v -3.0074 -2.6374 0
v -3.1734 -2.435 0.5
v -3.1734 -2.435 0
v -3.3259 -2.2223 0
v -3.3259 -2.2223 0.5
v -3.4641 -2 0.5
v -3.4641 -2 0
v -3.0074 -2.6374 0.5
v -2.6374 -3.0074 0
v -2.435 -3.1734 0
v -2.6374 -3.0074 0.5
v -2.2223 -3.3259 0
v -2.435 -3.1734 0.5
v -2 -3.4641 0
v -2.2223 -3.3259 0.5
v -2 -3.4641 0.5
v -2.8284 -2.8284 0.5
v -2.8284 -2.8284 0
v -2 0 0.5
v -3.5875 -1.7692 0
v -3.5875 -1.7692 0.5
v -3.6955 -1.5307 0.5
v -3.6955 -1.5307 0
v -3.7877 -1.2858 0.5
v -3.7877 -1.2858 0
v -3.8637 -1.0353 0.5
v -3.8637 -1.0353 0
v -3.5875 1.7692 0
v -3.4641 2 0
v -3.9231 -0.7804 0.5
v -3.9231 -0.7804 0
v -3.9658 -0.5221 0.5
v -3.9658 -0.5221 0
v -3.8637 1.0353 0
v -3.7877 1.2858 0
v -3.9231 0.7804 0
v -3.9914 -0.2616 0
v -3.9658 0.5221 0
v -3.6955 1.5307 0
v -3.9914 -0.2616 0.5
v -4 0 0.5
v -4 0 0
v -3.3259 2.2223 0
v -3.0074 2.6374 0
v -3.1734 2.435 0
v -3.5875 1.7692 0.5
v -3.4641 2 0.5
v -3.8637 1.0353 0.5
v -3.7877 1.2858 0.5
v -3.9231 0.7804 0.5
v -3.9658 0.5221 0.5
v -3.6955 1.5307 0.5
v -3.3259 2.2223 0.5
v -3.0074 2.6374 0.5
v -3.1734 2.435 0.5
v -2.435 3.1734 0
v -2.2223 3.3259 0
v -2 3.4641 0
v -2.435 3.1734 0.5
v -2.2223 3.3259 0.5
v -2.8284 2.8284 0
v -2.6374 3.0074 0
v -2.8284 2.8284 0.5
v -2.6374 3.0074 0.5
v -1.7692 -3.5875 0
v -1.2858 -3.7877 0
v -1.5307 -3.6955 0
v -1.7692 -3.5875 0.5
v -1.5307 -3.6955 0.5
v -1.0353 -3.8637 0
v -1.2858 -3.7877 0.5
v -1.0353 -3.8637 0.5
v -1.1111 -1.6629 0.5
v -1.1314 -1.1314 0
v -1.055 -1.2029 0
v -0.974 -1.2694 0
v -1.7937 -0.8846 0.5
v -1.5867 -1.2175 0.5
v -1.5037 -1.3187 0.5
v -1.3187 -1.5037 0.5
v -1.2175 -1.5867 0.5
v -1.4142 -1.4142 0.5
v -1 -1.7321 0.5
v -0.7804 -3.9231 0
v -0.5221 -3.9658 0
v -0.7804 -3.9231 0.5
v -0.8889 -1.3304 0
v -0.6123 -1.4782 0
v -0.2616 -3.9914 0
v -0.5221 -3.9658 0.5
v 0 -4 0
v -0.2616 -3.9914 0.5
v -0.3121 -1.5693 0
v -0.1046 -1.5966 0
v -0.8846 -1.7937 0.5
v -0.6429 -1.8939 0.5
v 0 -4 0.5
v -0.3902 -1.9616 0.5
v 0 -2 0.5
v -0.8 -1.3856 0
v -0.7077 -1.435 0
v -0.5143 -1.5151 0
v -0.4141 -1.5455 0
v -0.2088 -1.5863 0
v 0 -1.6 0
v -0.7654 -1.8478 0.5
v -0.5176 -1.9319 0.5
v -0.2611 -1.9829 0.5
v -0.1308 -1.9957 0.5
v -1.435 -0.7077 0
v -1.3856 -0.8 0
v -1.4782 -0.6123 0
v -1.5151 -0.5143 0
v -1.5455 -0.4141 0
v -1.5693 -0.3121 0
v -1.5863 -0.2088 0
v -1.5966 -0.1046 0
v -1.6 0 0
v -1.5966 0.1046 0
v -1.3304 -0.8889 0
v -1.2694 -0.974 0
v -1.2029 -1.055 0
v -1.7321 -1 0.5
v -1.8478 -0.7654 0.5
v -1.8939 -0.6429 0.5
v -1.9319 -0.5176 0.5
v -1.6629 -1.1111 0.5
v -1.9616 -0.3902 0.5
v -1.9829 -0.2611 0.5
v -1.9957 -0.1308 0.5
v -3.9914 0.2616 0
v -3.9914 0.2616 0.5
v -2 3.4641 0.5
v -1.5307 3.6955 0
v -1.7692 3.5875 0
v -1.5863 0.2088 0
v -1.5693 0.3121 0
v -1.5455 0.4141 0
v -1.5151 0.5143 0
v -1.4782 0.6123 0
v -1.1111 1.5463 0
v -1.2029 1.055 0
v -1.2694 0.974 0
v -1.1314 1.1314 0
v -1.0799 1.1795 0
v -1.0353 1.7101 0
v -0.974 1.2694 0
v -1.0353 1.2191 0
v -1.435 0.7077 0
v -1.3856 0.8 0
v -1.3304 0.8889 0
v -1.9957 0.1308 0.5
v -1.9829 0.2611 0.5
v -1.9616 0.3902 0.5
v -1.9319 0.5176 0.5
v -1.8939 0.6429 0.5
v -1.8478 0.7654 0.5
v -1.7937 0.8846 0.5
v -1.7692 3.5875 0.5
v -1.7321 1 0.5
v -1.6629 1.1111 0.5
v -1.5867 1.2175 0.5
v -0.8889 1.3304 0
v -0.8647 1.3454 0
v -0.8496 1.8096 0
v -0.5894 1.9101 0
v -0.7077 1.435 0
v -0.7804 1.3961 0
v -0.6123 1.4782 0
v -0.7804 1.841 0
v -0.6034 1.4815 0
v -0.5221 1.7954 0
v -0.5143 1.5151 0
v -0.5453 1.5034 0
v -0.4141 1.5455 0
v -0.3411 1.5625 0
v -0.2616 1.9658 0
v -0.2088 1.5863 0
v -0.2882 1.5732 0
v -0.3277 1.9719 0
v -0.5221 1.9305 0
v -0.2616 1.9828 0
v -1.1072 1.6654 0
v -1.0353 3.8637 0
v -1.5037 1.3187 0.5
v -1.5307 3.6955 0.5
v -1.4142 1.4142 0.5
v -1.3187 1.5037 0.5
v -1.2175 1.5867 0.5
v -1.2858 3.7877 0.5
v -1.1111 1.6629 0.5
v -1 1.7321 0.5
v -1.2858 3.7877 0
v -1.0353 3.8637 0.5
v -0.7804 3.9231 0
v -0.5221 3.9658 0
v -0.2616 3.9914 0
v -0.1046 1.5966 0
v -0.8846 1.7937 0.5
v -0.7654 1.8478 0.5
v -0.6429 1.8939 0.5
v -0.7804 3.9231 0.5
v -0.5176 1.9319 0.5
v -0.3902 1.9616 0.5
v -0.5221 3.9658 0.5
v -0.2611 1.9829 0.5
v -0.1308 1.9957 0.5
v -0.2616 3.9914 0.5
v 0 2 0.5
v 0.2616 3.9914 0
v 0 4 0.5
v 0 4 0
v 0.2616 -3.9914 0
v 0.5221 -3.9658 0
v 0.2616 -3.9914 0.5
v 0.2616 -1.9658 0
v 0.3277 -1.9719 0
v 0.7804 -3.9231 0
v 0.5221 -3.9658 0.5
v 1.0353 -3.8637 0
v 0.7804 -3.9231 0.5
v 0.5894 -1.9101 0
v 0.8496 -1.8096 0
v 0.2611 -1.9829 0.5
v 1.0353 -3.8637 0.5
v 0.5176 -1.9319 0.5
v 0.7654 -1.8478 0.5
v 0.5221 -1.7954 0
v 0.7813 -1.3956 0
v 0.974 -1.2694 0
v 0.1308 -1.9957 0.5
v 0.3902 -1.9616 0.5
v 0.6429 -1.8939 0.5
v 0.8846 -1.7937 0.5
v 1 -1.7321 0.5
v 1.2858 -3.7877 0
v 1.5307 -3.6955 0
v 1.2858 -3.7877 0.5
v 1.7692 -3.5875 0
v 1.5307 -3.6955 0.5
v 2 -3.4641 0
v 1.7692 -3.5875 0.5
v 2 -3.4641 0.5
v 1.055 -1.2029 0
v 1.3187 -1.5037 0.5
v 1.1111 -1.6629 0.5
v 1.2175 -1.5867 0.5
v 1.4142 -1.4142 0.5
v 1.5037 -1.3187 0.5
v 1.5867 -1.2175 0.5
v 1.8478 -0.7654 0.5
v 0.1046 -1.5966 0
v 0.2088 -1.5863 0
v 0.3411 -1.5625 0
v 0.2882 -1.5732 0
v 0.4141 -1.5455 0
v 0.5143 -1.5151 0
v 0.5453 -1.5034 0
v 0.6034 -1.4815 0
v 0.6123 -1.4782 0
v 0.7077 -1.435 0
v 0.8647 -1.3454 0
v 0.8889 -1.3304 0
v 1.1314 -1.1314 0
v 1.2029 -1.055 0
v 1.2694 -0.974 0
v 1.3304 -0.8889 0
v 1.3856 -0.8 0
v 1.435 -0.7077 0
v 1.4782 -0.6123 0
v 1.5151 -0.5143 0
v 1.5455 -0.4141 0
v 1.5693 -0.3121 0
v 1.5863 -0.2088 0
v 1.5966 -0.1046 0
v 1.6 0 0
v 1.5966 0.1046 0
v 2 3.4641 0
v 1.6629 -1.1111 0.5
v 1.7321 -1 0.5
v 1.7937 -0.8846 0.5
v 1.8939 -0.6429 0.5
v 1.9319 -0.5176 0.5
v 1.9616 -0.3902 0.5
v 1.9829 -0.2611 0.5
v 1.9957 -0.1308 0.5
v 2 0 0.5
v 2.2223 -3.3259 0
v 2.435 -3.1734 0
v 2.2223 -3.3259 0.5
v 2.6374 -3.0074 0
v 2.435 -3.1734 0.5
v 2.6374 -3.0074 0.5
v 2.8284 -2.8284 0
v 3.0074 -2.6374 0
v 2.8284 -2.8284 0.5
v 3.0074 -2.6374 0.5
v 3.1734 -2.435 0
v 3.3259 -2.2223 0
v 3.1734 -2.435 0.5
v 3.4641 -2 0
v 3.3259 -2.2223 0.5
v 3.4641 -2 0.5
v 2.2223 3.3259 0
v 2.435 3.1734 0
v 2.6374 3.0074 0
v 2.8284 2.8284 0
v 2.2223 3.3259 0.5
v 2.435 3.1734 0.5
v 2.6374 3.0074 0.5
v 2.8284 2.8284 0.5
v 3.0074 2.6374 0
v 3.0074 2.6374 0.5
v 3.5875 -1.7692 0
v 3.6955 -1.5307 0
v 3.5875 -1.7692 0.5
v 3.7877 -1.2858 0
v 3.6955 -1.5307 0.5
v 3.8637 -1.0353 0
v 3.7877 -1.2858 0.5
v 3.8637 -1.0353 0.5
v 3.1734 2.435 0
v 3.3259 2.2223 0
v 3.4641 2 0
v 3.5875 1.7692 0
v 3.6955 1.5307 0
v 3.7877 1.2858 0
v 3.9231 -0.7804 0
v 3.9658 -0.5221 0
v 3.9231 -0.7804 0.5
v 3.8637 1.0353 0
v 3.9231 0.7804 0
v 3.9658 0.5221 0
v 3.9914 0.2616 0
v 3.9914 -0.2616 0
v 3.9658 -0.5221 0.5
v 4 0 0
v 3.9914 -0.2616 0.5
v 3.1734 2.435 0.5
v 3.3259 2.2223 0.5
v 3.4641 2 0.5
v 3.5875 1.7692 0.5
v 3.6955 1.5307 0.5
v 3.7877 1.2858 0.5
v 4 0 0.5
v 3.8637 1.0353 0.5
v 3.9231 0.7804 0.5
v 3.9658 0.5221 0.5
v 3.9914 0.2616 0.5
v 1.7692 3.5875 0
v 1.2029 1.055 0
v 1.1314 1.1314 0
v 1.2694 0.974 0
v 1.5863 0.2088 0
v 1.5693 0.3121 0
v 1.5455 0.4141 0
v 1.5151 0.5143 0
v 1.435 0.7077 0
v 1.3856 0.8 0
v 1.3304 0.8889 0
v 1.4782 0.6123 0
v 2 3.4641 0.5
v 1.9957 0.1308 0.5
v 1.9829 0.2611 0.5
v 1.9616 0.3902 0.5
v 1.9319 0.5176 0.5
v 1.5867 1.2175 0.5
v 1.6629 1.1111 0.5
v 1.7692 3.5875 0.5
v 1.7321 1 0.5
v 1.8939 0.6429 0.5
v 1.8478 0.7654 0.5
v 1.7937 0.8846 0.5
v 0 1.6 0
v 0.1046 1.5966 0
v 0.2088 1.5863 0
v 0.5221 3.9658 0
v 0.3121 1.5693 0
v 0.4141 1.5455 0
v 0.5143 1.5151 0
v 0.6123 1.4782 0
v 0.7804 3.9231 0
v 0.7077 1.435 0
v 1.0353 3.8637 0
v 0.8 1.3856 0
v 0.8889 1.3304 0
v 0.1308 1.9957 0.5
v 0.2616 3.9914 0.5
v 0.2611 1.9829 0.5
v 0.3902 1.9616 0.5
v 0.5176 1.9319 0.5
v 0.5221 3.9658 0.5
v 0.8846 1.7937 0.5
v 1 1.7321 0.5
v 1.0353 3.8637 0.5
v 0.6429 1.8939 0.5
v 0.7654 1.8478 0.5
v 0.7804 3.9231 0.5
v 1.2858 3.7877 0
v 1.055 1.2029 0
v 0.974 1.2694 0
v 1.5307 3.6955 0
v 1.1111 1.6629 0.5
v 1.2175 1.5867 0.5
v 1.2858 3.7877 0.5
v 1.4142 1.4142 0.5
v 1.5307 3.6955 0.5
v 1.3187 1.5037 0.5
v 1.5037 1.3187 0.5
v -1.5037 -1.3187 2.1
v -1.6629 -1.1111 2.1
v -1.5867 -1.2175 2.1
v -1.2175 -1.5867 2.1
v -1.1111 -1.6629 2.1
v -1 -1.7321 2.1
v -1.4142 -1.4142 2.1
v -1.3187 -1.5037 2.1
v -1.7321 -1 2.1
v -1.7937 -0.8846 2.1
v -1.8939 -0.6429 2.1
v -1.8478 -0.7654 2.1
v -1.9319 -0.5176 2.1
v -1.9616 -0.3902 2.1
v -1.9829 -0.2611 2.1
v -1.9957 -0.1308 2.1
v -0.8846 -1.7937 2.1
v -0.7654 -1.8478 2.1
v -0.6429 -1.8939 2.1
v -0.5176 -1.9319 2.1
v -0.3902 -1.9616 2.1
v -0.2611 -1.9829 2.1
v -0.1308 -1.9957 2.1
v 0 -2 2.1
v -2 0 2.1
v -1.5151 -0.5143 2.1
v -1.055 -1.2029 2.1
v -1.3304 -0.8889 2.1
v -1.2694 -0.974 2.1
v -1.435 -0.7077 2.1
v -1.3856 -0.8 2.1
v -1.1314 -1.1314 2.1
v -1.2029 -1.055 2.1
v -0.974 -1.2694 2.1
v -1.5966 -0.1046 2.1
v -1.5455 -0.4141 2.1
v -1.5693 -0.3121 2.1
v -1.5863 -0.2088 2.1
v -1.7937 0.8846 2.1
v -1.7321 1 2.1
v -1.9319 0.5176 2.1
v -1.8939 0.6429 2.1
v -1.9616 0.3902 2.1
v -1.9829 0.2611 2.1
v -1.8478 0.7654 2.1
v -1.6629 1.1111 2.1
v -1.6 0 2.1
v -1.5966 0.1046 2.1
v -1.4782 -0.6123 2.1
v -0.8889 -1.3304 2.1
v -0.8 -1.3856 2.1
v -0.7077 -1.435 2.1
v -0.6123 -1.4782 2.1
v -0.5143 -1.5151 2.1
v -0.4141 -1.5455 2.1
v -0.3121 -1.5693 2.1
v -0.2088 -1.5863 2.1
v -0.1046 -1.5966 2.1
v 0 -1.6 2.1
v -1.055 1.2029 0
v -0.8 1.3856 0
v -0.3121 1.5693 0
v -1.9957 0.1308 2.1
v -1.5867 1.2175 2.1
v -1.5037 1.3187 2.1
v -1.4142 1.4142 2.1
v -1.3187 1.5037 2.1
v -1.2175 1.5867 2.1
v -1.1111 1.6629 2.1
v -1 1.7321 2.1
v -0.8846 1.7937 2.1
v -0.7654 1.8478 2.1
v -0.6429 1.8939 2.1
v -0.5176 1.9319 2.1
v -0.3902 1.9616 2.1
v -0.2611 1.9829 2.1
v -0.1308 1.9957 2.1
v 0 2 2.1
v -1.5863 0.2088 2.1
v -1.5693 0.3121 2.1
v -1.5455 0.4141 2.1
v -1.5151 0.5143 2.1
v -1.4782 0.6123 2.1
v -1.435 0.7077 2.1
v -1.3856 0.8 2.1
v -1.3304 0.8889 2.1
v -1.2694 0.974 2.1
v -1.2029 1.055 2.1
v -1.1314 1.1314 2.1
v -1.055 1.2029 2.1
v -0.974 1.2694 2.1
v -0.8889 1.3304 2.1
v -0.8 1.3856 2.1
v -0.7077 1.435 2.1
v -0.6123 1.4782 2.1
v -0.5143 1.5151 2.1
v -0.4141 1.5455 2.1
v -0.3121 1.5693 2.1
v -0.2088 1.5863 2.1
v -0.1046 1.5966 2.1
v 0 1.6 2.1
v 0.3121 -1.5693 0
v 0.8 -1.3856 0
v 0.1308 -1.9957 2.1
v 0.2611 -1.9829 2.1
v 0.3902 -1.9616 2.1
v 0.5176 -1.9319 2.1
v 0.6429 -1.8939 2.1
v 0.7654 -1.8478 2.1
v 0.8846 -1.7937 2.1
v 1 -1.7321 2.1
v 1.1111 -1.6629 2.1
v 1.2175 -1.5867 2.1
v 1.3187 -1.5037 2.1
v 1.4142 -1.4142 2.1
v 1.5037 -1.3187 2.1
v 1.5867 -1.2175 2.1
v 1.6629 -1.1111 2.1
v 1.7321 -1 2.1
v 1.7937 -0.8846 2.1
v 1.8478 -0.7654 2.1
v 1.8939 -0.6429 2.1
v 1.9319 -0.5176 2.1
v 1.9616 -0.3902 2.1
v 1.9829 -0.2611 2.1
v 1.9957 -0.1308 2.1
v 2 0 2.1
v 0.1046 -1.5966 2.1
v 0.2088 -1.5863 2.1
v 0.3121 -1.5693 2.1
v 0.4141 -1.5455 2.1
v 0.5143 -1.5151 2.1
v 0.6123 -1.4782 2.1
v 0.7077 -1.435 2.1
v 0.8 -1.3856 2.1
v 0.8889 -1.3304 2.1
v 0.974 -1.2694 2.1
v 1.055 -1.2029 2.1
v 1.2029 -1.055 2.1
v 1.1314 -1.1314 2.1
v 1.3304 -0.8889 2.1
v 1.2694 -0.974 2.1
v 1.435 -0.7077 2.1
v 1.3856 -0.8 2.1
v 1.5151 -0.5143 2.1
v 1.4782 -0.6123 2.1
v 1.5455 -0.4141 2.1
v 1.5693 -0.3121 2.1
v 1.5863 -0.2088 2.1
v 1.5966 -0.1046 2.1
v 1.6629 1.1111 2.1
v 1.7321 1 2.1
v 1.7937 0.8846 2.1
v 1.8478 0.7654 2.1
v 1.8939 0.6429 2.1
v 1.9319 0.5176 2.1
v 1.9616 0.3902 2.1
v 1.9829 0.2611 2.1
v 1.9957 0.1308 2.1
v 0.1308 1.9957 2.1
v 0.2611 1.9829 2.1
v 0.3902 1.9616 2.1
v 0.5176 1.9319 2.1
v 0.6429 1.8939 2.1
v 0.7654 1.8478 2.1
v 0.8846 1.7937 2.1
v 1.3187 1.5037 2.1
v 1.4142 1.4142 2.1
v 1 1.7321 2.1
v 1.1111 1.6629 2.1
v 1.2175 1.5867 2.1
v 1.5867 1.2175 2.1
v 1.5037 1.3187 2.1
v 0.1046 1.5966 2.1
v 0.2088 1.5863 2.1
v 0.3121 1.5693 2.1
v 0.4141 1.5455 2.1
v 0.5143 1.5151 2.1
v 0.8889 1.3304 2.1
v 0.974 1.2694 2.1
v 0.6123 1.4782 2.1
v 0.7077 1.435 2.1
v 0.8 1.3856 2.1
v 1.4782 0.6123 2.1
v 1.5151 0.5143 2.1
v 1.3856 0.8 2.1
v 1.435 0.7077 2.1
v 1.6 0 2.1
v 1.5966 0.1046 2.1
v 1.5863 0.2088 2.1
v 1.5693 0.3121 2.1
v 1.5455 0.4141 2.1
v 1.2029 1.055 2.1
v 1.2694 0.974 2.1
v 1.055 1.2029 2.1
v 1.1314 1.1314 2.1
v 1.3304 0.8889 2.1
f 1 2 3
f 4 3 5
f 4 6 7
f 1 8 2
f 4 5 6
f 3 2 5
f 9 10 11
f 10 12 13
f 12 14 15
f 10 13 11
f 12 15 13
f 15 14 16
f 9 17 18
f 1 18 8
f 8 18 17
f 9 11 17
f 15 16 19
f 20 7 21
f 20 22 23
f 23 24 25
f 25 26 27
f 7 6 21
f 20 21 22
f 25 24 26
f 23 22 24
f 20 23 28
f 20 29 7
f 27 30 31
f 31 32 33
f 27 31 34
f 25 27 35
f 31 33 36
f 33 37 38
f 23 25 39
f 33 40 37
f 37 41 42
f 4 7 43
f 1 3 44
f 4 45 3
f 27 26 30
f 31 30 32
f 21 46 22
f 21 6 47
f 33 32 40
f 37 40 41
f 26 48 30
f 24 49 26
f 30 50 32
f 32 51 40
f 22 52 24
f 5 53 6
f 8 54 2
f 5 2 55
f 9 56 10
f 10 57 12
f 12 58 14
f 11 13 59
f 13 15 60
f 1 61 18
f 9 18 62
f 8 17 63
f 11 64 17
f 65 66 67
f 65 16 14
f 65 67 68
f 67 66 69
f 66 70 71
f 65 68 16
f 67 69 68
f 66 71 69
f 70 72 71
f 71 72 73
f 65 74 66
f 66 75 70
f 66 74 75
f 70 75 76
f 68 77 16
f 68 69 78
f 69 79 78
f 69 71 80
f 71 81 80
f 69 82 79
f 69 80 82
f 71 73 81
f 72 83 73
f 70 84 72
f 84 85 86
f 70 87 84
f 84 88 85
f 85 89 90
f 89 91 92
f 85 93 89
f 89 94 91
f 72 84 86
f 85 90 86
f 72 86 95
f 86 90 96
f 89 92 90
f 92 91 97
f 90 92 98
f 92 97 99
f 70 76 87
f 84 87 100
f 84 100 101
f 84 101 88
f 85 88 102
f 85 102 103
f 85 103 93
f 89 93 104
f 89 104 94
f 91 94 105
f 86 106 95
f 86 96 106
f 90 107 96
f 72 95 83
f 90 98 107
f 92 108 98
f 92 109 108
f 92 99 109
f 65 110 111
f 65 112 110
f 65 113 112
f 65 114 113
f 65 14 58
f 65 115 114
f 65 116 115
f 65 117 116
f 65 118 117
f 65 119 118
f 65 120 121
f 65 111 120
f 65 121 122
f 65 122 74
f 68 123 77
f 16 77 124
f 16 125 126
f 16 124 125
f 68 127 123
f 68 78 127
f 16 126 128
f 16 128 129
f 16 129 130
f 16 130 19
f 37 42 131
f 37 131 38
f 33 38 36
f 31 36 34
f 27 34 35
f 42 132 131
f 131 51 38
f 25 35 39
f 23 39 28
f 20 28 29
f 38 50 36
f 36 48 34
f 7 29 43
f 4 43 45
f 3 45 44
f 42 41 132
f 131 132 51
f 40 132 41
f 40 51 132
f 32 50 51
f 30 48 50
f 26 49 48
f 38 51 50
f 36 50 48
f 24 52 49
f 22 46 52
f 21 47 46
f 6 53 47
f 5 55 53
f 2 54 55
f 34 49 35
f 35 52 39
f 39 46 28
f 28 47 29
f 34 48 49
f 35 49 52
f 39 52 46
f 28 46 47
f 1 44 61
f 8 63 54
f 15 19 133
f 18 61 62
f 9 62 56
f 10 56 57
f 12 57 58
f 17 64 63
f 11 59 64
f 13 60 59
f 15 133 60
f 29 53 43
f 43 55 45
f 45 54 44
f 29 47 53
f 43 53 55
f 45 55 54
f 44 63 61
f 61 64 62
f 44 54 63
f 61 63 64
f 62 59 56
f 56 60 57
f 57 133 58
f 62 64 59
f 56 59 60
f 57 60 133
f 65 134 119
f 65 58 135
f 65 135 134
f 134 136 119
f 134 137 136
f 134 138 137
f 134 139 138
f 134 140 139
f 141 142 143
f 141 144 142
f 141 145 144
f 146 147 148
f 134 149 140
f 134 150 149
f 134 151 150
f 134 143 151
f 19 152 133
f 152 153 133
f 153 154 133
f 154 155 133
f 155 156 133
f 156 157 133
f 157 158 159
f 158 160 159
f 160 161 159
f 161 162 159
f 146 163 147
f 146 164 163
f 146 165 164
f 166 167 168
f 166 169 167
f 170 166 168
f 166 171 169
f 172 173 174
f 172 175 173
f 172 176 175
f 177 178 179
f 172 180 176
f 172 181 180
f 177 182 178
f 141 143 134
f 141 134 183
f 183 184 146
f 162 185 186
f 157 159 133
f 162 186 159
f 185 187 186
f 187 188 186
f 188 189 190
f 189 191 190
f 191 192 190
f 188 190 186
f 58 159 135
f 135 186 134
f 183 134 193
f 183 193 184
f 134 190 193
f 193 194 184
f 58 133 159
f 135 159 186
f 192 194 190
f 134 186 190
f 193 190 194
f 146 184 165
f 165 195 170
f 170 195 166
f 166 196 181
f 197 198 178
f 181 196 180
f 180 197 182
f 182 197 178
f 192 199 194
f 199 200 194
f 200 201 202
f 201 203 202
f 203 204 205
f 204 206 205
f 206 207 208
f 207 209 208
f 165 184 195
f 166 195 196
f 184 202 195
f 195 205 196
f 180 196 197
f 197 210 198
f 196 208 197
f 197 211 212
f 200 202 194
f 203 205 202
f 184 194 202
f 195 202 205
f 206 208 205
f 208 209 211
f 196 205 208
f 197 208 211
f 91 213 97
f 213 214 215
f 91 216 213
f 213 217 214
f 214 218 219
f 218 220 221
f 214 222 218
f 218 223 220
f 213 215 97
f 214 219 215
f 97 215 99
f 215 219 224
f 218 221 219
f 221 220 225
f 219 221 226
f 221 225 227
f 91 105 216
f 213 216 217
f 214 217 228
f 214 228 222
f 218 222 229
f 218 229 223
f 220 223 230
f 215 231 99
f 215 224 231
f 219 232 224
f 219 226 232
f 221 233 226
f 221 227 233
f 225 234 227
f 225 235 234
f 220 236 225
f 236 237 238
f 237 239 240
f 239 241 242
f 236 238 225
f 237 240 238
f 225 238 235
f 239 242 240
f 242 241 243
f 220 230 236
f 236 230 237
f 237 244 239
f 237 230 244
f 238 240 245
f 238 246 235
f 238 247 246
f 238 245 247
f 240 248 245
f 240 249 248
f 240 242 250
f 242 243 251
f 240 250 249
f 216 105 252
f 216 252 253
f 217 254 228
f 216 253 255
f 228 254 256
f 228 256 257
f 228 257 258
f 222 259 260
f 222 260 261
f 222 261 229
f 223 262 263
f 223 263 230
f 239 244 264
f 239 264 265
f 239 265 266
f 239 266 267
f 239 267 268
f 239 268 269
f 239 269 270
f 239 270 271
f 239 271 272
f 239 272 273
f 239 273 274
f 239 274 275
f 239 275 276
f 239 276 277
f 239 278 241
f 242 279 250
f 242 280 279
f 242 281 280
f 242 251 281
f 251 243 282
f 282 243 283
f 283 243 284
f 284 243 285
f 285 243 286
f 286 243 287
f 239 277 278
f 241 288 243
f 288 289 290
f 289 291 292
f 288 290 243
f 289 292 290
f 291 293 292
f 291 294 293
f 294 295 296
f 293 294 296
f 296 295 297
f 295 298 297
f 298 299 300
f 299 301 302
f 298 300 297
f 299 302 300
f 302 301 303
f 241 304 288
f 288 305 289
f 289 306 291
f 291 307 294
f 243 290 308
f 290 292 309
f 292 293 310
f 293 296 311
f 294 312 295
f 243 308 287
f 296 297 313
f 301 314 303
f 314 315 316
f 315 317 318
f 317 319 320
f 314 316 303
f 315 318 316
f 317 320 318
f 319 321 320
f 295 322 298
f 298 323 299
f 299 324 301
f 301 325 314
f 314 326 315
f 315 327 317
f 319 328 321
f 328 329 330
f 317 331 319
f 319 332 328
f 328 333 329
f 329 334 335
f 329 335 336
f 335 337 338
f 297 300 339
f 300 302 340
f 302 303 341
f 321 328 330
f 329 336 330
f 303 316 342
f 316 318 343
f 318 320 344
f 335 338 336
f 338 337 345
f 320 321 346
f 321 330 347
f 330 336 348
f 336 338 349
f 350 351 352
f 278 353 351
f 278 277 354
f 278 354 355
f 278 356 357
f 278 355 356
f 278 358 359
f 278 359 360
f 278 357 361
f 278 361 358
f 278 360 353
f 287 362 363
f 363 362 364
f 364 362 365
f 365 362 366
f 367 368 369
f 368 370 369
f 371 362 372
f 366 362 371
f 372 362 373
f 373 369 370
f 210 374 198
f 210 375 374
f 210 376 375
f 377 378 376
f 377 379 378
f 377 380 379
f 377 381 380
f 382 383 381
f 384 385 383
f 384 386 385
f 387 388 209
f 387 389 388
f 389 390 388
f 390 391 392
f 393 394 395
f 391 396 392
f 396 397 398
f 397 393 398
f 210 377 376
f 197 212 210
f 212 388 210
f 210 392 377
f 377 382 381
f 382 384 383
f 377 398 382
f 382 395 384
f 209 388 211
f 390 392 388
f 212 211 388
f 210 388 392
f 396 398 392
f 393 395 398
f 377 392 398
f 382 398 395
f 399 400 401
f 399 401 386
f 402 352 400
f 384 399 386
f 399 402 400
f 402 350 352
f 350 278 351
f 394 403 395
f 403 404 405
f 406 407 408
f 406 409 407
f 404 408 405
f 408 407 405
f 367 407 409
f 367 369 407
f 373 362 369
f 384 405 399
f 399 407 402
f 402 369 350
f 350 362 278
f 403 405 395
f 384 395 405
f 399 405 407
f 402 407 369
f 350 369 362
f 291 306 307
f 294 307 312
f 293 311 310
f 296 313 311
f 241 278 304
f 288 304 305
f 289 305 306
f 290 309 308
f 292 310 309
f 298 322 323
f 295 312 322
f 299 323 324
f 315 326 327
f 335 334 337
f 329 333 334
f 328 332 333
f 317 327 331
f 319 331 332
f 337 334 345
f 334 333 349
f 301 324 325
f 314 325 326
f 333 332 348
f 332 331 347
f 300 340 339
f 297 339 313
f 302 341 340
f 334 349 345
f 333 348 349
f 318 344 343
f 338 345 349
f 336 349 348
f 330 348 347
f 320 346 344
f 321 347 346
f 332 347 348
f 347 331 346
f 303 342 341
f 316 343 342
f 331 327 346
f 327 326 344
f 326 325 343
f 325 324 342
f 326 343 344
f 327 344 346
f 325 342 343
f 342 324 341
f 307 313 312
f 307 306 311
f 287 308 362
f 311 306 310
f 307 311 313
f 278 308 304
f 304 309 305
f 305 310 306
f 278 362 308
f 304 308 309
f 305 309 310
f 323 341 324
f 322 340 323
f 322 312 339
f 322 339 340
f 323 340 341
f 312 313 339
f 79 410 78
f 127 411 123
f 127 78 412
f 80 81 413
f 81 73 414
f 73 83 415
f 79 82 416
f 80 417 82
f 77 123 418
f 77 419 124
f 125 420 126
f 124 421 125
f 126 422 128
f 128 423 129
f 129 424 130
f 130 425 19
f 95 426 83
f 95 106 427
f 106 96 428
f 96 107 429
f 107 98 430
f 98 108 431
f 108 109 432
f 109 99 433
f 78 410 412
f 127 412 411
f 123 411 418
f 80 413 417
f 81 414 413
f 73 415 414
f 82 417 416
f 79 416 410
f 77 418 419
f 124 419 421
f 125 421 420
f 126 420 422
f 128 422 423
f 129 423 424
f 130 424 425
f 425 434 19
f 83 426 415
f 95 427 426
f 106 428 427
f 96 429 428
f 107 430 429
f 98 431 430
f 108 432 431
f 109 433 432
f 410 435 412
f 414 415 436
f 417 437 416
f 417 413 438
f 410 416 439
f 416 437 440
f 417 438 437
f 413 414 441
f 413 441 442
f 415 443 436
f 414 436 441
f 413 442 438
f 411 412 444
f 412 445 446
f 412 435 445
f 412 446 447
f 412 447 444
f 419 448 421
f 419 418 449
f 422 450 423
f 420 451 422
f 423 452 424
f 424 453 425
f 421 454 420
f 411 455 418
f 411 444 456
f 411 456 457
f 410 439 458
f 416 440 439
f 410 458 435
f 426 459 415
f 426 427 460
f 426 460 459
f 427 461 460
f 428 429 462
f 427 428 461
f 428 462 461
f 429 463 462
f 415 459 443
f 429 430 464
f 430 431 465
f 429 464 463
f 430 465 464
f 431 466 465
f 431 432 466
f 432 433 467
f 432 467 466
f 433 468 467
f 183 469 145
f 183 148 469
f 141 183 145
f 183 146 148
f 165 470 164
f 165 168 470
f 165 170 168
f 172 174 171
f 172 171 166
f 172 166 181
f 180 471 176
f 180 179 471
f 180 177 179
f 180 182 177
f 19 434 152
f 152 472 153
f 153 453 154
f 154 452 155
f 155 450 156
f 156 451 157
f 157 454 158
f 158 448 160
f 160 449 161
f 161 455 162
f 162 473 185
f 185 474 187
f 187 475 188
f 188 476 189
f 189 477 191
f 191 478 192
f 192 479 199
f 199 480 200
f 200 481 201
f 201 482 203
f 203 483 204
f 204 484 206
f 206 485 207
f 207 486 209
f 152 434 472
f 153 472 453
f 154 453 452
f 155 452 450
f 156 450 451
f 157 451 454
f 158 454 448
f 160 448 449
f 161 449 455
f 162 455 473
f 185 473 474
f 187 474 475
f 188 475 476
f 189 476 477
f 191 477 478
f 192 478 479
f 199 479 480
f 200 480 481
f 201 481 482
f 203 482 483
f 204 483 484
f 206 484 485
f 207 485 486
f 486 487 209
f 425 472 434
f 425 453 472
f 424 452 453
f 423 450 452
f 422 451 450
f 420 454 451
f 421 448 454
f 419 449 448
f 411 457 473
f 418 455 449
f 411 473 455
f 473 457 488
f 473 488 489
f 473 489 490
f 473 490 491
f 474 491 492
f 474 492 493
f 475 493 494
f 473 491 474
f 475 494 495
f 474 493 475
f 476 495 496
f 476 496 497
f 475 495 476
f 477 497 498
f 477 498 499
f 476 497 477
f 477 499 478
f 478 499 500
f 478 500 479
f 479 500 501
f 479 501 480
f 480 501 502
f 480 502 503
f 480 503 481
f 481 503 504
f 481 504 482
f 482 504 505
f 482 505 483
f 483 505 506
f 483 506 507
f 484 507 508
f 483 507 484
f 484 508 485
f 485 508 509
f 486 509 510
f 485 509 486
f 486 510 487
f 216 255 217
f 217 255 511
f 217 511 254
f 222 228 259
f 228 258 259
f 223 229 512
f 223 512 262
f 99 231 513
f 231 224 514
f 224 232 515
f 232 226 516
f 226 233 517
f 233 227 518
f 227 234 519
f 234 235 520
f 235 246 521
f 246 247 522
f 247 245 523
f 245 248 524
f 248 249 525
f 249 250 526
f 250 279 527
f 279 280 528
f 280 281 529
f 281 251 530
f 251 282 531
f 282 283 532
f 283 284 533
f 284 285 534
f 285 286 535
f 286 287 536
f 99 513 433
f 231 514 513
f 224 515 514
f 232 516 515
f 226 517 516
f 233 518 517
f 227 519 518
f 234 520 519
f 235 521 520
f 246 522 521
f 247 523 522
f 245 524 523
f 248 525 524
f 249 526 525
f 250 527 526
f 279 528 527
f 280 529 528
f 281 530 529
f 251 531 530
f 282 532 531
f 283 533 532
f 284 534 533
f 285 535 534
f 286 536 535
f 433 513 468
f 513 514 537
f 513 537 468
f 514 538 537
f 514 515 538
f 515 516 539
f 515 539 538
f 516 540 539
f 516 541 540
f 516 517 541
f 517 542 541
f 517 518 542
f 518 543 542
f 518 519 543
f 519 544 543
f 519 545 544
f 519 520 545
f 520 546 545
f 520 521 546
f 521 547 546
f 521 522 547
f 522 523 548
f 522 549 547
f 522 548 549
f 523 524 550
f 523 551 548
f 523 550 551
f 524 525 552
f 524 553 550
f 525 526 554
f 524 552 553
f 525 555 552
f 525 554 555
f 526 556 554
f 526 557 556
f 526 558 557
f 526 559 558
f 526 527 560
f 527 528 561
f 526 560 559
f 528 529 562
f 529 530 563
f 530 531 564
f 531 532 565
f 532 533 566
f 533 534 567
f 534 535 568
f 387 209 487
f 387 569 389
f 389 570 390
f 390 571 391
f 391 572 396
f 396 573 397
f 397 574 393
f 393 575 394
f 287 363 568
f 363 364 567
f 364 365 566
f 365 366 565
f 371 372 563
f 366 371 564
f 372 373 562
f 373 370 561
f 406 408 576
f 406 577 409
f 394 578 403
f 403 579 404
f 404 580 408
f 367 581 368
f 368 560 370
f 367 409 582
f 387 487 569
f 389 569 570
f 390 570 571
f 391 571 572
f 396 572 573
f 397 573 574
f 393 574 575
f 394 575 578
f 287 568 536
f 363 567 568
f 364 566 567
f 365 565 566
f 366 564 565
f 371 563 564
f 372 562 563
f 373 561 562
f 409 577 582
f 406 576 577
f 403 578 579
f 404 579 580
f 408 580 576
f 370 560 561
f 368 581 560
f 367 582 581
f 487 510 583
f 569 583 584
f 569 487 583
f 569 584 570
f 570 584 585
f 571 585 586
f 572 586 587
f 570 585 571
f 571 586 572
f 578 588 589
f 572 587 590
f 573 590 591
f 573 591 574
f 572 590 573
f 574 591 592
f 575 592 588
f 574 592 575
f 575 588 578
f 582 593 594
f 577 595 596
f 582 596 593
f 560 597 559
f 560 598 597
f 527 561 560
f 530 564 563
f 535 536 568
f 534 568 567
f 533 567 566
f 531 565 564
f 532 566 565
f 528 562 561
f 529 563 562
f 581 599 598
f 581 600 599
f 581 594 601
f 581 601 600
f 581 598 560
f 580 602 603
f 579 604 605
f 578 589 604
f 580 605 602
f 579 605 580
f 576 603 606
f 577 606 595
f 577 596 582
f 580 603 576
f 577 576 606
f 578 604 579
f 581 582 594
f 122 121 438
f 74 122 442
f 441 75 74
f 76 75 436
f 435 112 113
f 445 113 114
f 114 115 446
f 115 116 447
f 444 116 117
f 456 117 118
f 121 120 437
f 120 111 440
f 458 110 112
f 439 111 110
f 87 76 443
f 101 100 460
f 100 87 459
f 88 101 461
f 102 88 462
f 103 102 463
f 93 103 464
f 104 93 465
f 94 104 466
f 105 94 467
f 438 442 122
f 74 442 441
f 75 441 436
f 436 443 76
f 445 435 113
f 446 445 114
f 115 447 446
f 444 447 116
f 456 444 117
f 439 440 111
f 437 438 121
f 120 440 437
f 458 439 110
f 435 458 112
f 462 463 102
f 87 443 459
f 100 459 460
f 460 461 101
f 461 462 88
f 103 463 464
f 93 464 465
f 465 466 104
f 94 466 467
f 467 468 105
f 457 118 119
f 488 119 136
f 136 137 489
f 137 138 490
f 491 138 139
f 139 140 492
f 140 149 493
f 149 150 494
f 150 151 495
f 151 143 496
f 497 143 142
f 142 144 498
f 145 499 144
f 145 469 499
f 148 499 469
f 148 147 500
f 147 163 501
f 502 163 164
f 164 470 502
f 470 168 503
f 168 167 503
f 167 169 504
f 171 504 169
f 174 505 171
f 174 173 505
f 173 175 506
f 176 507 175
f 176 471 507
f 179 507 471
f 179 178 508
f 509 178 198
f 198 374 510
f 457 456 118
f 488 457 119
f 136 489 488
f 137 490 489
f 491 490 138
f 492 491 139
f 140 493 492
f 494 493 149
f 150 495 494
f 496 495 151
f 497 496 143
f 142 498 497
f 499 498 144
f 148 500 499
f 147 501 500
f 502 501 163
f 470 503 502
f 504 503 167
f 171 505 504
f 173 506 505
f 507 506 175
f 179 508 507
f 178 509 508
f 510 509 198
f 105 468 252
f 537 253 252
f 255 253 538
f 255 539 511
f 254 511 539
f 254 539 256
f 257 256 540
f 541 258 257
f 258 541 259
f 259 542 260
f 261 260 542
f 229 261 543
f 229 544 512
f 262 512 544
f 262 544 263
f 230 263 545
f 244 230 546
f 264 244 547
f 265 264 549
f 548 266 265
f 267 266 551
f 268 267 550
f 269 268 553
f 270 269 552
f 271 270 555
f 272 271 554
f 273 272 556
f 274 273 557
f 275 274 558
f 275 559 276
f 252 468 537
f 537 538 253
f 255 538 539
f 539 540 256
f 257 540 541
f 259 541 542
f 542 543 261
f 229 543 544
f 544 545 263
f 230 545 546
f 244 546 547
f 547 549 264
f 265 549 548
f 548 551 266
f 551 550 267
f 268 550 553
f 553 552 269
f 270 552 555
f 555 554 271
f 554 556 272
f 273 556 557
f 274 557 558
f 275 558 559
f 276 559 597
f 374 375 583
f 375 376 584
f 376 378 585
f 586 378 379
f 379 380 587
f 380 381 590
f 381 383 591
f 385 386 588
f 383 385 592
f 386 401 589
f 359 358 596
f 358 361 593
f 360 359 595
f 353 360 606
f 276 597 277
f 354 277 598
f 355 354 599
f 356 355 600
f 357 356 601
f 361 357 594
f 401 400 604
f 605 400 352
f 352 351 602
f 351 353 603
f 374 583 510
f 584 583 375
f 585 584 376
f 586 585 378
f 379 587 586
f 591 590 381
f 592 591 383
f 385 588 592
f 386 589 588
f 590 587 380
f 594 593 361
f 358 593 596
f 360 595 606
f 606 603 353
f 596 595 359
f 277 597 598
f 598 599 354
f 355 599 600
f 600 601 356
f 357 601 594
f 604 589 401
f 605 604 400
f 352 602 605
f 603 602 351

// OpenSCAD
// m3_bushing_v1_0: SoC 转接板 Φ4 孔 -> M3 转接套 (与 build_stl.py 同参数)
sleeve_od = 4.0; bore_d = 3.2; flange_d = 8.0; flange_t = 0.5; sleeve_l = 1.6;
$fn = 96;
difference() {
    union() {
        cylinder(h = flange_t, d = flange_d);
        cylinder(h = flange_t + sleeve_l, d = sleeve_od);
    }
    translate([0, 0, -1]) cylinder(h = flange_t + sleeve_l + 2, d = bore_d);
}
